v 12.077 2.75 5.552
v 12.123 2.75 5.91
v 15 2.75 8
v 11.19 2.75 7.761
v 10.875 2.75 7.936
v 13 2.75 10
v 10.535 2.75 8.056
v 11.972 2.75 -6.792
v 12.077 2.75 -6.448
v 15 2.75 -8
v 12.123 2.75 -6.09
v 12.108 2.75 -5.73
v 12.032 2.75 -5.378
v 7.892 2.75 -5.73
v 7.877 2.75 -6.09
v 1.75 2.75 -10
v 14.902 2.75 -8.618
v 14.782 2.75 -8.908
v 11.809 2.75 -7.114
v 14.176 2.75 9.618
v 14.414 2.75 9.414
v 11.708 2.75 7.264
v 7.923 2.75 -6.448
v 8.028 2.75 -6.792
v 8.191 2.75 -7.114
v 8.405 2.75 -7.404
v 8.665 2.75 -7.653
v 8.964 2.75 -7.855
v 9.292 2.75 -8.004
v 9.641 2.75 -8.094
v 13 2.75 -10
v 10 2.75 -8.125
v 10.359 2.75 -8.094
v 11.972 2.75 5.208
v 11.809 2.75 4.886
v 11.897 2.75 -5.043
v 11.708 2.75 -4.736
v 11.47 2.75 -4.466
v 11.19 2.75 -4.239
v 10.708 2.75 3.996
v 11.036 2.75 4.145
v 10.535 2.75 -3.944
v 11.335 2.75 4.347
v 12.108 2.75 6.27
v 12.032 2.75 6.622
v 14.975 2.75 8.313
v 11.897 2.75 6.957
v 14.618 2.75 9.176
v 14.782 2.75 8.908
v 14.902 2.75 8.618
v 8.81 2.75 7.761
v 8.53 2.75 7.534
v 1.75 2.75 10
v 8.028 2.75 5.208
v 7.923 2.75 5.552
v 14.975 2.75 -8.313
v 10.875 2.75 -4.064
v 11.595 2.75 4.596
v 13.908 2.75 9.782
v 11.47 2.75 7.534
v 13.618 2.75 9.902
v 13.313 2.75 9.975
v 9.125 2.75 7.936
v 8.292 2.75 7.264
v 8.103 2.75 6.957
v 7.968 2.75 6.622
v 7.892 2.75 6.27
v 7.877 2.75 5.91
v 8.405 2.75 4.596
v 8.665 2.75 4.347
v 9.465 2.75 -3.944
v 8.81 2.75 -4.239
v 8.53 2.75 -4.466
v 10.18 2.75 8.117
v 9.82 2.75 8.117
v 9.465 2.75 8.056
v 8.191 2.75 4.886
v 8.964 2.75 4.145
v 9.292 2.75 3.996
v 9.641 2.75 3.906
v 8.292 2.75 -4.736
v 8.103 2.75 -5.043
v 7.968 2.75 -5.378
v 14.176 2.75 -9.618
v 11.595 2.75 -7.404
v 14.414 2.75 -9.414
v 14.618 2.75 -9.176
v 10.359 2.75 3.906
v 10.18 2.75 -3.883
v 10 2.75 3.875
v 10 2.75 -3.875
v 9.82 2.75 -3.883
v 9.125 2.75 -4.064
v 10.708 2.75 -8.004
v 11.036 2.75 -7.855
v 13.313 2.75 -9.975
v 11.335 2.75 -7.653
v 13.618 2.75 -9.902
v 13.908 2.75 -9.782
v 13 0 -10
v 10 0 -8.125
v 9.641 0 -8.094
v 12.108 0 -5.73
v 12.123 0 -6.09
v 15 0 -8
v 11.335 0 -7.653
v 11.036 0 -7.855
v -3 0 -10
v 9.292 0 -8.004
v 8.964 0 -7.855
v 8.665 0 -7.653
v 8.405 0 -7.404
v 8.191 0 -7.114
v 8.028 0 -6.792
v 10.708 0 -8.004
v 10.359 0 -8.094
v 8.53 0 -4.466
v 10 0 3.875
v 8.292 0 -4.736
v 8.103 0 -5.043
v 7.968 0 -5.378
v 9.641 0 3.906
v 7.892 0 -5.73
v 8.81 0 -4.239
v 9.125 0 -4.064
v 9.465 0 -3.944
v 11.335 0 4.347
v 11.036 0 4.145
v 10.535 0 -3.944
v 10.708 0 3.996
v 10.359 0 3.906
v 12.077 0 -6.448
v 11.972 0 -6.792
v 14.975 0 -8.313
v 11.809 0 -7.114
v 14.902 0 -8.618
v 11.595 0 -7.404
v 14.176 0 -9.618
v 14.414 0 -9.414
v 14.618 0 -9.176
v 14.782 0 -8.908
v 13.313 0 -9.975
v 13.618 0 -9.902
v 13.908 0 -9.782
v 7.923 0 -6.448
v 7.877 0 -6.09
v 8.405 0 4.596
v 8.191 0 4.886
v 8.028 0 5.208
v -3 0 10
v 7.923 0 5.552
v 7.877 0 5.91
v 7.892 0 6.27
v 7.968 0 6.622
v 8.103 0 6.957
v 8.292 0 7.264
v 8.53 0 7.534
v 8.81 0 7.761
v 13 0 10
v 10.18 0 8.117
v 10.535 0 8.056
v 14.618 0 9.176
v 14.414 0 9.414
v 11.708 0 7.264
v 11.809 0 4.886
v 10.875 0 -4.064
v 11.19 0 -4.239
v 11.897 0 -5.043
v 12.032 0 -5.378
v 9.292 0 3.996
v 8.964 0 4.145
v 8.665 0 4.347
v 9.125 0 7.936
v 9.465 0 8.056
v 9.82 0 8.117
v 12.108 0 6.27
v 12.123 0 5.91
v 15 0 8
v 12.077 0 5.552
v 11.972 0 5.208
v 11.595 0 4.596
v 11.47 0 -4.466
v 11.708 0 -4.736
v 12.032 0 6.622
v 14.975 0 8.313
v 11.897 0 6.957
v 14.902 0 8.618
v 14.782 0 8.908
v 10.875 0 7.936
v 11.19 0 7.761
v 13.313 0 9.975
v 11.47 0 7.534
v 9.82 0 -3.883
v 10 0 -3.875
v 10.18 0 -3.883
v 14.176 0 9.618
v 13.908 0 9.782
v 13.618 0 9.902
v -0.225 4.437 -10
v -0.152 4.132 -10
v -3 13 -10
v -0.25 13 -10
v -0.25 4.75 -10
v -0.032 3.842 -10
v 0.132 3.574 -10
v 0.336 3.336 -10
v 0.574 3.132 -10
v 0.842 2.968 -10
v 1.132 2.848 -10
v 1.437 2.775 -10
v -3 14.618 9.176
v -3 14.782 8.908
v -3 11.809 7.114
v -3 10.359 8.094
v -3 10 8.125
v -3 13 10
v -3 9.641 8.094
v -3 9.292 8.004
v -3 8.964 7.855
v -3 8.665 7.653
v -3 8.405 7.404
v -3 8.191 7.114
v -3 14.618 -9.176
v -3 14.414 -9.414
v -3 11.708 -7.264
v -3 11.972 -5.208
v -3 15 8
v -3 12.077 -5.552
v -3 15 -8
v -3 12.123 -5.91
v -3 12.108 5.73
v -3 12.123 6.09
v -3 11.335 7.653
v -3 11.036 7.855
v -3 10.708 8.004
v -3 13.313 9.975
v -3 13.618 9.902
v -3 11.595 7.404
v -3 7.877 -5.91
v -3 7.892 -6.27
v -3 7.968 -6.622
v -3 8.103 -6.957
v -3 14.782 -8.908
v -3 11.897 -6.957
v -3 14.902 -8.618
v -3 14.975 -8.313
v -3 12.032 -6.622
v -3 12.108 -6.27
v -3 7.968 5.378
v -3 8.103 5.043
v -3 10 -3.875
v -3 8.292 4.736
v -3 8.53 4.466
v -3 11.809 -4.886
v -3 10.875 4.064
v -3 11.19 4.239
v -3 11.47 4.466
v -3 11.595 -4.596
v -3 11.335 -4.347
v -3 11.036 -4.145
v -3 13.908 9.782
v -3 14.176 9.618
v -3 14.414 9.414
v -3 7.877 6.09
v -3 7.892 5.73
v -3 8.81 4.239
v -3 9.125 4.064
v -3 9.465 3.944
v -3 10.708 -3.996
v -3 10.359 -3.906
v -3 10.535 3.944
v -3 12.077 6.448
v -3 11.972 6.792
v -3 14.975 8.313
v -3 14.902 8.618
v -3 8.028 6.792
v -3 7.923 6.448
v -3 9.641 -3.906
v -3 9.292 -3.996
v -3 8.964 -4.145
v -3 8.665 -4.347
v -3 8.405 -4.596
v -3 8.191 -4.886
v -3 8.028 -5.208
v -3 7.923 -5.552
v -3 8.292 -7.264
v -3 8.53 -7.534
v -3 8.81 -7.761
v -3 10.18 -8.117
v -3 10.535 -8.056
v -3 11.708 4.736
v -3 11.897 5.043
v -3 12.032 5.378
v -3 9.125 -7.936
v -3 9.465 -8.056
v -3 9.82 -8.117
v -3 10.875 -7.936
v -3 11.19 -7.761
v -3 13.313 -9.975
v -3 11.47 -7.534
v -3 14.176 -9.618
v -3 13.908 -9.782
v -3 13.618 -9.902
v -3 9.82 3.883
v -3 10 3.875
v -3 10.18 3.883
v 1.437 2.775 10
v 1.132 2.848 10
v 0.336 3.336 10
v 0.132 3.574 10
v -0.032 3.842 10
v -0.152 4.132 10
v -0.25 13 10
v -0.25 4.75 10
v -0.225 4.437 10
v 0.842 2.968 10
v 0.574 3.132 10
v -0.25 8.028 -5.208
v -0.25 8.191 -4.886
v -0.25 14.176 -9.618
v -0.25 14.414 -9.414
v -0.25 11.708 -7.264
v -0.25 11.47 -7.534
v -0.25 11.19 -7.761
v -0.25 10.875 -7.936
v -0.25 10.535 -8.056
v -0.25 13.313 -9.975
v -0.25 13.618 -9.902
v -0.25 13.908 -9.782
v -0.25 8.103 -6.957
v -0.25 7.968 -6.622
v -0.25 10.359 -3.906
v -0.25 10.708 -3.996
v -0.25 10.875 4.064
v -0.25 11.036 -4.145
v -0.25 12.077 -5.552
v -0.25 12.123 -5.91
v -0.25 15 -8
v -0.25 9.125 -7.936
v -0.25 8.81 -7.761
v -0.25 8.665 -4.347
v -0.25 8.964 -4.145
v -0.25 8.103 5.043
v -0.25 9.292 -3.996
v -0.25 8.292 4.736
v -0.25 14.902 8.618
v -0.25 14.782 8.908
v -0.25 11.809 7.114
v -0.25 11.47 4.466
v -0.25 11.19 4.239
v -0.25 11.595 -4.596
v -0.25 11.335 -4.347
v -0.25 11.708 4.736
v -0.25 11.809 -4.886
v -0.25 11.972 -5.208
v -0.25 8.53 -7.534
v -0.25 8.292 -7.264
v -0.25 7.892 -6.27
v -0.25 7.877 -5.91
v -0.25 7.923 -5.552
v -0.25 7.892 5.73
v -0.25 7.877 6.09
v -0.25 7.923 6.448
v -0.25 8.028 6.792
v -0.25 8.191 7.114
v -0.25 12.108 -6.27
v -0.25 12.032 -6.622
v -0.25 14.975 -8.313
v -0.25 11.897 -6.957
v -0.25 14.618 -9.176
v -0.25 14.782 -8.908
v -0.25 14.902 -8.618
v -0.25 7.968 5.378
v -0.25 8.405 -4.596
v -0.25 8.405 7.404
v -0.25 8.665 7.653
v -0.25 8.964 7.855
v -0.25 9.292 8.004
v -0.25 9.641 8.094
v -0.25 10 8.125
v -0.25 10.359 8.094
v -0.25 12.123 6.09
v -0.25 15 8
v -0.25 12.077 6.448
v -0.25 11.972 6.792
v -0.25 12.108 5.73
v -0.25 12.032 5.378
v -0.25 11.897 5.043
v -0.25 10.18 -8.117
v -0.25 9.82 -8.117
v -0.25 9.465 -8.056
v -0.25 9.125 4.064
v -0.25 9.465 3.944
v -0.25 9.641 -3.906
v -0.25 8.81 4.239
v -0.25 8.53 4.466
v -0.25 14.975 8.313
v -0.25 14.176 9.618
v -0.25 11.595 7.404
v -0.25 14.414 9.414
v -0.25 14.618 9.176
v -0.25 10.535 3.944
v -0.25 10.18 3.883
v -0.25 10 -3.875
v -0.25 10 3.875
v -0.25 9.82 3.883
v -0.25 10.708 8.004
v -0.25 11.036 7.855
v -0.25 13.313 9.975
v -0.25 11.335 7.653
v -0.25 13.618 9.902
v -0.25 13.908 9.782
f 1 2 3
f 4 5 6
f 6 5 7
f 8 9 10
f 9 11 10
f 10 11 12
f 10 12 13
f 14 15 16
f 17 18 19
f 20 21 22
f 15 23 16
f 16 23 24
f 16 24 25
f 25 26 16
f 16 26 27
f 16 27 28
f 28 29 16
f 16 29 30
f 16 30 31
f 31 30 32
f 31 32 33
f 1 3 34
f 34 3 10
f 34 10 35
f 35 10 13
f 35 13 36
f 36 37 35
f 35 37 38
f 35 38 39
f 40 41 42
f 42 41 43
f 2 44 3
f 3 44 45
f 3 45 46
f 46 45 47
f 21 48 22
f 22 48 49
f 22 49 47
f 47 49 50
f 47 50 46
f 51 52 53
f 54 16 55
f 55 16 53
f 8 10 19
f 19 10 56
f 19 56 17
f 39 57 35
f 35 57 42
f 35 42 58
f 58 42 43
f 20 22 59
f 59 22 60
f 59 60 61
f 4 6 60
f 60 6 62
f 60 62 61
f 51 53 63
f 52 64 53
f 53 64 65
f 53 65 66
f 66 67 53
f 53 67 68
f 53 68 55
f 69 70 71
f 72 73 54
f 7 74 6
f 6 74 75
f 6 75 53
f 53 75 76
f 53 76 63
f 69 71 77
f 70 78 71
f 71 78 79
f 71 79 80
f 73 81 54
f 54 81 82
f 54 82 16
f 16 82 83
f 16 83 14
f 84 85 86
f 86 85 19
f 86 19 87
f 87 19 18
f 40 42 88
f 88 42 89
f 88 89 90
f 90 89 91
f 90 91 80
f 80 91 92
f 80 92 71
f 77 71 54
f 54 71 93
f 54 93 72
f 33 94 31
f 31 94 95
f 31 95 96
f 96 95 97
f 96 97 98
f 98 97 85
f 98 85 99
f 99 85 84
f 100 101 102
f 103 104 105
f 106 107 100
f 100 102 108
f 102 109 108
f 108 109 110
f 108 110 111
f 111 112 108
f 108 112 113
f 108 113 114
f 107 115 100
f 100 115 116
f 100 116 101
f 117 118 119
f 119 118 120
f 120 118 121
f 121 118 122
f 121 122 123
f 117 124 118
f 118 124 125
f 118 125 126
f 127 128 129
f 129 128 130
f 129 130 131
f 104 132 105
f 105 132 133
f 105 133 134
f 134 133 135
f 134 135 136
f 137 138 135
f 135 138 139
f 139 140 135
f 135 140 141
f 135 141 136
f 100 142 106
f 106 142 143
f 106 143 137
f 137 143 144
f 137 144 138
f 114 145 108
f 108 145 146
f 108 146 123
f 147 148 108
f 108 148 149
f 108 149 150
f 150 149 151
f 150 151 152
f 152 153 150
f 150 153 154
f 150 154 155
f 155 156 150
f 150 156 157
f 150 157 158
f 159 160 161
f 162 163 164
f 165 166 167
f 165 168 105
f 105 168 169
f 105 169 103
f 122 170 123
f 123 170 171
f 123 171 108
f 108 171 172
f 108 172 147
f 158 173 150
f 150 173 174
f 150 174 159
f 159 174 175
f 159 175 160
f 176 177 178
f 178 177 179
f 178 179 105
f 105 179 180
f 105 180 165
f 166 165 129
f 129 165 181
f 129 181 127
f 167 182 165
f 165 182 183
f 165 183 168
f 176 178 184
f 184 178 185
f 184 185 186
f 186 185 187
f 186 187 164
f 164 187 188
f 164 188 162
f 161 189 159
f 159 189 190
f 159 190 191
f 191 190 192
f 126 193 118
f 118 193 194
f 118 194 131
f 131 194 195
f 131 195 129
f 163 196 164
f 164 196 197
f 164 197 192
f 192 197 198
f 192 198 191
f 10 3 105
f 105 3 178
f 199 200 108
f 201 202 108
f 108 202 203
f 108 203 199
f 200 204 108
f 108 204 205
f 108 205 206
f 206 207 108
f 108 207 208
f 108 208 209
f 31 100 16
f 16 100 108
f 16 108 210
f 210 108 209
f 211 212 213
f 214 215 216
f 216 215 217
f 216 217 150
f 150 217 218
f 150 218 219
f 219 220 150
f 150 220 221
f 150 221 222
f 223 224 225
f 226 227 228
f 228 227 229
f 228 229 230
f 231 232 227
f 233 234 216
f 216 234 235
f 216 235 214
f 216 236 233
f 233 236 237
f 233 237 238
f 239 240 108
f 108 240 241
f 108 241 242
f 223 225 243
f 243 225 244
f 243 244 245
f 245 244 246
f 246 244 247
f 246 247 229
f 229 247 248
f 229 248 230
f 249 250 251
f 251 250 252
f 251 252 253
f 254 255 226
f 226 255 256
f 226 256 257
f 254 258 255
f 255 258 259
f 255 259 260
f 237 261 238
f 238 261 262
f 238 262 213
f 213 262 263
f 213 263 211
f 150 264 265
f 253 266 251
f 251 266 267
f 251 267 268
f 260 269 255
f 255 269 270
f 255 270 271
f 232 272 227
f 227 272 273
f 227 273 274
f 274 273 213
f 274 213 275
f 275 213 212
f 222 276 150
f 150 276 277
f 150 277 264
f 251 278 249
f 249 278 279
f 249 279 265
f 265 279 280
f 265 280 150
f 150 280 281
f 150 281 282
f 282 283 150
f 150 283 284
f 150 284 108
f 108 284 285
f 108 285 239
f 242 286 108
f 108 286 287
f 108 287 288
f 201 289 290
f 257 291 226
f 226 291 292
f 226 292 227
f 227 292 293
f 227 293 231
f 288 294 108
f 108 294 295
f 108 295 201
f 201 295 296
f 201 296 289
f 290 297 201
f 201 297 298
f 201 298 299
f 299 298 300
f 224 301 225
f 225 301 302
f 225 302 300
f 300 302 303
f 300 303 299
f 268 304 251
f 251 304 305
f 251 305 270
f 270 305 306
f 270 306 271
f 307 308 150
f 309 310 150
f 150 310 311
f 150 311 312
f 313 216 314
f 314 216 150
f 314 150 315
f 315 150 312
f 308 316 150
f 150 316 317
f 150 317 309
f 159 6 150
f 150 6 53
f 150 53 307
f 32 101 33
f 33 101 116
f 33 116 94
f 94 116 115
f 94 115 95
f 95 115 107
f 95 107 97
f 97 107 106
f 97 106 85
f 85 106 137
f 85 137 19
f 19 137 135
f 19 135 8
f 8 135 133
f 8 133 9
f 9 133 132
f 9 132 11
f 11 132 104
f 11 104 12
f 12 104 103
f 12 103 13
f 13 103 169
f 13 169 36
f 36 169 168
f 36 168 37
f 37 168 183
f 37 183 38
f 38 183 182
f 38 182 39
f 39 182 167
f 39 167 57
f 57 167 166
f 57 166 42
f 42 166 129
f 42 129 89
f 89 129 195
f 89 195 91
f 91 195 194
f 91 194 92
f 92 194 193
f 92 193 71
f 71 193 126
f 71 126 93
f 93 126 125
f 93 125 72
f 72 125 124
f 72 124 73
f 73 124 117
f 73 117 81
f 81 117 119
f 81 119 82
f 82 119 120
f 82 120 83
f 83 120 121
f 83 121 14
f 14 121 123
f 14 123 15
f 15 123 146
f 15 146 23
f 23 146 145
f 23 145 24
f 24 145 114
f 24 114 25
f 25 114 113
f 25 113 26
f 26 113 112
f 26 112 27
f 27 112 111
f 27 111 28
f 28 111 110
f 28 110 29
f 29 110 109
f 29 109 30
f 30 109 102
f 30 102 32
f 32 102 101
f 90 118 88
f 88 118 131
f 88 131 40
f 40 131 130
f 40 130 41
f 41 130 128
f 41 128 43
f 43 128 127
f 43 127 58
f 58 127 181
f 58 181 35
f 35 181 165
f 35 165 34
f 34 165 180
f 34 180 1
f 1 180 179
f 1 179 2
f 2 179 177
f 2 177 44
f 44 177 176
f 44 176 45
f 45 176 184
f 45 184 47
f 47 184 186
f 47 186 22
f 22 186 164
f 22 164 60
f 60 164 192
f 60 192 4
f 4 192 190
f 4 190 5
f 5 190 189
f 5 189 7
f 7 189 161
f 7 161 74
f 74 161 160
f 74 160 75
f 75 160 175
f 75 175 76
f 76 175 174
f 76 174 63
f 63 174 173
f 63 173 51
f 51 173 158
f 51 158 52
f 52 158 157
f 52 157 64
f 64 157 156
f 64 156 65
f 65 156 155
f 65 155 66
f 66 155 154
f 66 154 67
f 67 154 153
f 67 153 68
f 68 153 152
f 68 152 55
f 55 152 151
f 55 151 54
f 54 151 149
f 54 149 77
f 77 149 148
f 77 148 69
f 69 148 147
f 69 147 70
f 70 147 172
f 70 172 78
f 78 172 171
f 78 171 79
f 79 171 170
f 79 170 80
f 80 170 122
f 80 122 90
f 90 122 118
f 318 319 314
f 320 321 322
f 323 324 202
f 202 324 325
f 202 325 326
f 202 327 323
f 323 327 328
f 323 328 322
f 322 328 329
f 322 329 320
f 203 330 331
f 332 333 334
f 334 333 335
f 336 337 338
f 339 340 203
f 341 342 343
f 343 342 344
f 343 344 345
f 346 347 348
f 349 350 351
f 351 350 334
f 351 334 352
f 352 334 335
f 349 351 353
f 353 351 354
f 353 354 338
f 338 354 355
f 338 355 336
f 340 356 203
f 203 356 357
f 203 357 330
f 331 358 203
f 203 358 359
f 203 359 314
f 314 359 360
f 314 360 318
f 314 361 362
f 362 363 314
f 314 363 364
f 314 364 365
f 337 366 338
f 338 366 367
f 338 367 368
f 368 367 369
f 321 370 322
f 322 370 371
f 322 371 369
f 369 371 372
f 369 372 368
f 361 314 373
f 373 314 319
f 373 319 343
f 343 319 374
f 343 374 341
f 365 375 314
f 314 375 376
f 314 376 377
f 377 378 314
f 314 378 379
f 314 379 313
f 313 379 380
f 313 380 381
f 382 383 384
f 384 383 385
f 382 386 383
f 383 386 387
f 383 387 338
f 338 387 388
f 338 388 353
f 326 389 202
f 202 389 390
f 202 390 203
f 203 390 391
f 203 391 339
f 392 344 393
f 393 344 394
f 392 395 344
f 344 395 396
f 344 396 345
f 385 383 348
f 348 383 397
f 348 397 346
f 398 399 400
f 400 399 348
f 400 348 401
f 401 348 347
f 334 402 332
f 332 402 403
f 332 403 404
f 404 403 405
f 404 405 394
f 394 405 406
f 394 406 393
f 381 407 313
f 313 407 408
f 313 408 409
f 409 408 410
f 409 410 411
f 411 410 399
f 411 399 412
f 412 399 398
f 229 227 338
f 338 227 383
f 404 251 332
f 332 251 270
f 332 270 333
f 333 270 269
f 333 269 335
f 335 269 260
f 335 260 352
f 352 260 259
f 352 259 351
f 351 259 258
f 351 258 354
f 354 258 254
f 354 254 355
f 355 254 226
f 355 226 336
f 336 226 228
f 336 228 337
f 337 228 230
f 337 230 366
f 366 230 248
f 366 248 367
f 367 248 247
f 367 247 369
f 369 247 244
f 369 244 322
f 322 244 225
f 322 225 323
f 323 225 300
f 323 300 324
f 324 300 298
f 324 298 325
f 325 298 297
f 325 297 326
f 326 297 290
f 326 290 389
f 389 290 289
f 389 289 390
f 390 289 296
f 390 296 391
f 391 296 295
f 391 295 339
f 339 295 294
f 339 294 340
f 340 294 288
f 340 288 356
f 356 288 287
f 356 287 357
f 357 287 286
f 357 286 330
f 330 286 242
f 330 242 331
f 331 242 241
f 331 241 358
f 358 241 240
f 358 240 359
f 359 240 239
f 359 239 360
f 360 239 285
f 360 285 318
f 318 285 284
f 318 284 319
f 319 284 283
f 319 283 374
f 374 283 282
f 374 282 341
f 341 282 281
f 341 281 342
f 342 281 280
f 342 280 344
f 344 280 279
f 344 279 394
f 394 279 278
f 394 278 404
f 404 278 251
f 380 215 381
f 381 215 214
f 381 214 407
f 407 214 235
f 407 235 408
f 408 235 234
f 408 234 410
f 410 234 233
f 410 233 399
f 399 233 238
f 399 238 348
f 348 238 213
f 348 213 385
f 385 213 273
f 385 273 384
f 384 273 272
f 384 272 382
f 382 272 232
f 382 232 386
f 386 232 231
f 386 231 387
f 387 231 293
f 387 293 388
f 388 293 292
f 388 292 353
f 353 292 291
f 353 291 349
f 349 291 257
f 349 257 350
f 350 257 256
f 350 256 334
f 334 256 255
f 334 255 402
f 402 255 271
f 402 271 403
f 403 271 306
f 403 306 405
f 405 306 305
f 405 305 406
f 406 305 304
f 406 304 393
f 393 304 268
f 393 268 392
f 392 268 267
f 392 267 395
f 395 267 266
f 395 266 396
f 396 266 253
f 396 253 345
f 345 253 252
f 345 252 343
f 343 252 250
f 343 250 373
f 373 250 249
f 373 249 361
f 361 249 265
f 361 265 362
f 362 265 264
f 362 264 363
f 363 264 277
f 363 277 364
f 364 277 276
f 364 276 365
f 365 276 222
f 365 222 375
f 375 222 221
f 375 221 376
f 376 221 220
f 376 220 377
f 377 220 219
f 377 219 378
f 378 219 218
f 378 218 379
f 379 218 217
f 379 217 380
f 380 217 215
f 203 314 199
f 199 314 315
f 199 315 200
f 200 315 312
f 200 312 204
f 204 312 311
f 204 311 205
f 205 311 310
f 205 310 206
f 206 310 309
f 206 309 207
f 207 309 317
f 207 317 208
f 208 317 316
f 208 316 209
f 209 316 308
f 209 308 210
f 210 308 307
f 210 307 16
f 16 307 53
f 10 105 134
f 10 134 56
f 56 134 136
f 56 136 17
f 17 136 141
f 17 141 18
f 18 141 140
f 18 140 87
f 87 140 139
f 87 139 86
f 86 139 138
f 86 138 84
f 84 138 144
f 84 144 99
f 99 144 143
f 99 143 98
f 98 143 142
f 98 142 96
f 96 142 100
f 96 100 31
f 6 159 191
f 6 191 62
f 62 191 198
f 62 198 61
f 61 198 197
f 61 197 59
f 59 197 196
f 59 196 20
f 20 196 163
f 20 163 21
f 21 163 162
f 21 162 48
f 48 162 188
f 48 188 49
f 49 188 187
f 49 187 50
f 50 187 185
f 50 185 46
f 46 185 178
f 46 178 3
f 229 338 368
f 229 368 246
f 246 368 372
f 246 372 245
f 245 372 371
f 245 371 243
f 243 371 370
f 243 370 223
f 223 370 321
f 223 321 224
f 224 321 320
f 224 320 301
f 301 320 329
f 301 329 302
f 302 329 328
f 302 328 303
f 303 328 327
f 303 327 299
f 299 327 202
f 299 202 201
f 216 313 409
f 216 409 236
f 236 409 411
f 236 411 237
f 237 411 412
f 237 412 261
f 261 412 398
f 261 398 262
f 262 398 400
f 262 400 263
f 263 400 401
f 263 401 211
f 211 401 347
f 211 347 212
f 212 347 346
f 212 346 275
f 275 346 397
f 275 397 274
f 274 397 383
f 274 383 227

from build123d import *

# Parameters (mm, degrees)
SKETCH3_W           = 18
SKETCH3_H           = 20
SKETCH3_R           = 2.125
BOSS_EXTRUDE3_DEPTH = 2.75
SKETCH5_W           = 20
SKETCH5_H           = 15
SKETCH5_R           = 2.125
BOSS_EXTRUDE5_DEPTH = 2.75
FILLET4_R           = 2


with BuildPart() as part:
    # Sketch3 → Boss-Extrude3 (new body)
    with BuildSketch(Plane(origin=(0, 0, 0), x_dir=(1, 0, 0), z_dir=(0, 1, 0))):
        with Locations((6, 0)):
            Rectangle(SKETCH3_W, SKETCH3_H)
        with Locations(Location((10, 6, 0), (0, 0, 270))):
            Circle(SKETCH3_R, mode=Mode.SUBTRACT)
        with Locations(Location((10, -6, 0), (0, 0, 90))):
            Circle(SKETCH3_R, mode=Mode.SUBTRACT)
    extrude(amount=BOSS_EXTRUDE3_DEPTH)

    # Sketch5 → Boss-Extrude5 (add)
    with BuildSketch(Plane.ZY.offset(3)):
        with Locations((0, 7.5)):
            Rectangle(SKETCH5_W, SKETCH5_H)
        with Locations((-6, 10)):
            Circle(SKETCH5_R, mode=Mode.SUBTRACT)
        with Locations(Location((6, 10, 0), (0, 0, 180))):
            Circle(SKETCH5_R, mode=Mode.SUBTRACT)
    extrude(amount=-BOSS_EXTRUDE5_DEPTH)

    # Fillet4
    fillet4_edges = [part.edges().sort_by_distance(p)[0] for p in [
        (-1.625, 15, 10),
        (-1.625, 15, -10),
        (-0.25, 2.75, 0),
        (15, 1.375, 10),
        (15, 1.375, -10),
    ]]
    fillet(fillet4_edges, radius=FILLET4_R)


solid = part.part
